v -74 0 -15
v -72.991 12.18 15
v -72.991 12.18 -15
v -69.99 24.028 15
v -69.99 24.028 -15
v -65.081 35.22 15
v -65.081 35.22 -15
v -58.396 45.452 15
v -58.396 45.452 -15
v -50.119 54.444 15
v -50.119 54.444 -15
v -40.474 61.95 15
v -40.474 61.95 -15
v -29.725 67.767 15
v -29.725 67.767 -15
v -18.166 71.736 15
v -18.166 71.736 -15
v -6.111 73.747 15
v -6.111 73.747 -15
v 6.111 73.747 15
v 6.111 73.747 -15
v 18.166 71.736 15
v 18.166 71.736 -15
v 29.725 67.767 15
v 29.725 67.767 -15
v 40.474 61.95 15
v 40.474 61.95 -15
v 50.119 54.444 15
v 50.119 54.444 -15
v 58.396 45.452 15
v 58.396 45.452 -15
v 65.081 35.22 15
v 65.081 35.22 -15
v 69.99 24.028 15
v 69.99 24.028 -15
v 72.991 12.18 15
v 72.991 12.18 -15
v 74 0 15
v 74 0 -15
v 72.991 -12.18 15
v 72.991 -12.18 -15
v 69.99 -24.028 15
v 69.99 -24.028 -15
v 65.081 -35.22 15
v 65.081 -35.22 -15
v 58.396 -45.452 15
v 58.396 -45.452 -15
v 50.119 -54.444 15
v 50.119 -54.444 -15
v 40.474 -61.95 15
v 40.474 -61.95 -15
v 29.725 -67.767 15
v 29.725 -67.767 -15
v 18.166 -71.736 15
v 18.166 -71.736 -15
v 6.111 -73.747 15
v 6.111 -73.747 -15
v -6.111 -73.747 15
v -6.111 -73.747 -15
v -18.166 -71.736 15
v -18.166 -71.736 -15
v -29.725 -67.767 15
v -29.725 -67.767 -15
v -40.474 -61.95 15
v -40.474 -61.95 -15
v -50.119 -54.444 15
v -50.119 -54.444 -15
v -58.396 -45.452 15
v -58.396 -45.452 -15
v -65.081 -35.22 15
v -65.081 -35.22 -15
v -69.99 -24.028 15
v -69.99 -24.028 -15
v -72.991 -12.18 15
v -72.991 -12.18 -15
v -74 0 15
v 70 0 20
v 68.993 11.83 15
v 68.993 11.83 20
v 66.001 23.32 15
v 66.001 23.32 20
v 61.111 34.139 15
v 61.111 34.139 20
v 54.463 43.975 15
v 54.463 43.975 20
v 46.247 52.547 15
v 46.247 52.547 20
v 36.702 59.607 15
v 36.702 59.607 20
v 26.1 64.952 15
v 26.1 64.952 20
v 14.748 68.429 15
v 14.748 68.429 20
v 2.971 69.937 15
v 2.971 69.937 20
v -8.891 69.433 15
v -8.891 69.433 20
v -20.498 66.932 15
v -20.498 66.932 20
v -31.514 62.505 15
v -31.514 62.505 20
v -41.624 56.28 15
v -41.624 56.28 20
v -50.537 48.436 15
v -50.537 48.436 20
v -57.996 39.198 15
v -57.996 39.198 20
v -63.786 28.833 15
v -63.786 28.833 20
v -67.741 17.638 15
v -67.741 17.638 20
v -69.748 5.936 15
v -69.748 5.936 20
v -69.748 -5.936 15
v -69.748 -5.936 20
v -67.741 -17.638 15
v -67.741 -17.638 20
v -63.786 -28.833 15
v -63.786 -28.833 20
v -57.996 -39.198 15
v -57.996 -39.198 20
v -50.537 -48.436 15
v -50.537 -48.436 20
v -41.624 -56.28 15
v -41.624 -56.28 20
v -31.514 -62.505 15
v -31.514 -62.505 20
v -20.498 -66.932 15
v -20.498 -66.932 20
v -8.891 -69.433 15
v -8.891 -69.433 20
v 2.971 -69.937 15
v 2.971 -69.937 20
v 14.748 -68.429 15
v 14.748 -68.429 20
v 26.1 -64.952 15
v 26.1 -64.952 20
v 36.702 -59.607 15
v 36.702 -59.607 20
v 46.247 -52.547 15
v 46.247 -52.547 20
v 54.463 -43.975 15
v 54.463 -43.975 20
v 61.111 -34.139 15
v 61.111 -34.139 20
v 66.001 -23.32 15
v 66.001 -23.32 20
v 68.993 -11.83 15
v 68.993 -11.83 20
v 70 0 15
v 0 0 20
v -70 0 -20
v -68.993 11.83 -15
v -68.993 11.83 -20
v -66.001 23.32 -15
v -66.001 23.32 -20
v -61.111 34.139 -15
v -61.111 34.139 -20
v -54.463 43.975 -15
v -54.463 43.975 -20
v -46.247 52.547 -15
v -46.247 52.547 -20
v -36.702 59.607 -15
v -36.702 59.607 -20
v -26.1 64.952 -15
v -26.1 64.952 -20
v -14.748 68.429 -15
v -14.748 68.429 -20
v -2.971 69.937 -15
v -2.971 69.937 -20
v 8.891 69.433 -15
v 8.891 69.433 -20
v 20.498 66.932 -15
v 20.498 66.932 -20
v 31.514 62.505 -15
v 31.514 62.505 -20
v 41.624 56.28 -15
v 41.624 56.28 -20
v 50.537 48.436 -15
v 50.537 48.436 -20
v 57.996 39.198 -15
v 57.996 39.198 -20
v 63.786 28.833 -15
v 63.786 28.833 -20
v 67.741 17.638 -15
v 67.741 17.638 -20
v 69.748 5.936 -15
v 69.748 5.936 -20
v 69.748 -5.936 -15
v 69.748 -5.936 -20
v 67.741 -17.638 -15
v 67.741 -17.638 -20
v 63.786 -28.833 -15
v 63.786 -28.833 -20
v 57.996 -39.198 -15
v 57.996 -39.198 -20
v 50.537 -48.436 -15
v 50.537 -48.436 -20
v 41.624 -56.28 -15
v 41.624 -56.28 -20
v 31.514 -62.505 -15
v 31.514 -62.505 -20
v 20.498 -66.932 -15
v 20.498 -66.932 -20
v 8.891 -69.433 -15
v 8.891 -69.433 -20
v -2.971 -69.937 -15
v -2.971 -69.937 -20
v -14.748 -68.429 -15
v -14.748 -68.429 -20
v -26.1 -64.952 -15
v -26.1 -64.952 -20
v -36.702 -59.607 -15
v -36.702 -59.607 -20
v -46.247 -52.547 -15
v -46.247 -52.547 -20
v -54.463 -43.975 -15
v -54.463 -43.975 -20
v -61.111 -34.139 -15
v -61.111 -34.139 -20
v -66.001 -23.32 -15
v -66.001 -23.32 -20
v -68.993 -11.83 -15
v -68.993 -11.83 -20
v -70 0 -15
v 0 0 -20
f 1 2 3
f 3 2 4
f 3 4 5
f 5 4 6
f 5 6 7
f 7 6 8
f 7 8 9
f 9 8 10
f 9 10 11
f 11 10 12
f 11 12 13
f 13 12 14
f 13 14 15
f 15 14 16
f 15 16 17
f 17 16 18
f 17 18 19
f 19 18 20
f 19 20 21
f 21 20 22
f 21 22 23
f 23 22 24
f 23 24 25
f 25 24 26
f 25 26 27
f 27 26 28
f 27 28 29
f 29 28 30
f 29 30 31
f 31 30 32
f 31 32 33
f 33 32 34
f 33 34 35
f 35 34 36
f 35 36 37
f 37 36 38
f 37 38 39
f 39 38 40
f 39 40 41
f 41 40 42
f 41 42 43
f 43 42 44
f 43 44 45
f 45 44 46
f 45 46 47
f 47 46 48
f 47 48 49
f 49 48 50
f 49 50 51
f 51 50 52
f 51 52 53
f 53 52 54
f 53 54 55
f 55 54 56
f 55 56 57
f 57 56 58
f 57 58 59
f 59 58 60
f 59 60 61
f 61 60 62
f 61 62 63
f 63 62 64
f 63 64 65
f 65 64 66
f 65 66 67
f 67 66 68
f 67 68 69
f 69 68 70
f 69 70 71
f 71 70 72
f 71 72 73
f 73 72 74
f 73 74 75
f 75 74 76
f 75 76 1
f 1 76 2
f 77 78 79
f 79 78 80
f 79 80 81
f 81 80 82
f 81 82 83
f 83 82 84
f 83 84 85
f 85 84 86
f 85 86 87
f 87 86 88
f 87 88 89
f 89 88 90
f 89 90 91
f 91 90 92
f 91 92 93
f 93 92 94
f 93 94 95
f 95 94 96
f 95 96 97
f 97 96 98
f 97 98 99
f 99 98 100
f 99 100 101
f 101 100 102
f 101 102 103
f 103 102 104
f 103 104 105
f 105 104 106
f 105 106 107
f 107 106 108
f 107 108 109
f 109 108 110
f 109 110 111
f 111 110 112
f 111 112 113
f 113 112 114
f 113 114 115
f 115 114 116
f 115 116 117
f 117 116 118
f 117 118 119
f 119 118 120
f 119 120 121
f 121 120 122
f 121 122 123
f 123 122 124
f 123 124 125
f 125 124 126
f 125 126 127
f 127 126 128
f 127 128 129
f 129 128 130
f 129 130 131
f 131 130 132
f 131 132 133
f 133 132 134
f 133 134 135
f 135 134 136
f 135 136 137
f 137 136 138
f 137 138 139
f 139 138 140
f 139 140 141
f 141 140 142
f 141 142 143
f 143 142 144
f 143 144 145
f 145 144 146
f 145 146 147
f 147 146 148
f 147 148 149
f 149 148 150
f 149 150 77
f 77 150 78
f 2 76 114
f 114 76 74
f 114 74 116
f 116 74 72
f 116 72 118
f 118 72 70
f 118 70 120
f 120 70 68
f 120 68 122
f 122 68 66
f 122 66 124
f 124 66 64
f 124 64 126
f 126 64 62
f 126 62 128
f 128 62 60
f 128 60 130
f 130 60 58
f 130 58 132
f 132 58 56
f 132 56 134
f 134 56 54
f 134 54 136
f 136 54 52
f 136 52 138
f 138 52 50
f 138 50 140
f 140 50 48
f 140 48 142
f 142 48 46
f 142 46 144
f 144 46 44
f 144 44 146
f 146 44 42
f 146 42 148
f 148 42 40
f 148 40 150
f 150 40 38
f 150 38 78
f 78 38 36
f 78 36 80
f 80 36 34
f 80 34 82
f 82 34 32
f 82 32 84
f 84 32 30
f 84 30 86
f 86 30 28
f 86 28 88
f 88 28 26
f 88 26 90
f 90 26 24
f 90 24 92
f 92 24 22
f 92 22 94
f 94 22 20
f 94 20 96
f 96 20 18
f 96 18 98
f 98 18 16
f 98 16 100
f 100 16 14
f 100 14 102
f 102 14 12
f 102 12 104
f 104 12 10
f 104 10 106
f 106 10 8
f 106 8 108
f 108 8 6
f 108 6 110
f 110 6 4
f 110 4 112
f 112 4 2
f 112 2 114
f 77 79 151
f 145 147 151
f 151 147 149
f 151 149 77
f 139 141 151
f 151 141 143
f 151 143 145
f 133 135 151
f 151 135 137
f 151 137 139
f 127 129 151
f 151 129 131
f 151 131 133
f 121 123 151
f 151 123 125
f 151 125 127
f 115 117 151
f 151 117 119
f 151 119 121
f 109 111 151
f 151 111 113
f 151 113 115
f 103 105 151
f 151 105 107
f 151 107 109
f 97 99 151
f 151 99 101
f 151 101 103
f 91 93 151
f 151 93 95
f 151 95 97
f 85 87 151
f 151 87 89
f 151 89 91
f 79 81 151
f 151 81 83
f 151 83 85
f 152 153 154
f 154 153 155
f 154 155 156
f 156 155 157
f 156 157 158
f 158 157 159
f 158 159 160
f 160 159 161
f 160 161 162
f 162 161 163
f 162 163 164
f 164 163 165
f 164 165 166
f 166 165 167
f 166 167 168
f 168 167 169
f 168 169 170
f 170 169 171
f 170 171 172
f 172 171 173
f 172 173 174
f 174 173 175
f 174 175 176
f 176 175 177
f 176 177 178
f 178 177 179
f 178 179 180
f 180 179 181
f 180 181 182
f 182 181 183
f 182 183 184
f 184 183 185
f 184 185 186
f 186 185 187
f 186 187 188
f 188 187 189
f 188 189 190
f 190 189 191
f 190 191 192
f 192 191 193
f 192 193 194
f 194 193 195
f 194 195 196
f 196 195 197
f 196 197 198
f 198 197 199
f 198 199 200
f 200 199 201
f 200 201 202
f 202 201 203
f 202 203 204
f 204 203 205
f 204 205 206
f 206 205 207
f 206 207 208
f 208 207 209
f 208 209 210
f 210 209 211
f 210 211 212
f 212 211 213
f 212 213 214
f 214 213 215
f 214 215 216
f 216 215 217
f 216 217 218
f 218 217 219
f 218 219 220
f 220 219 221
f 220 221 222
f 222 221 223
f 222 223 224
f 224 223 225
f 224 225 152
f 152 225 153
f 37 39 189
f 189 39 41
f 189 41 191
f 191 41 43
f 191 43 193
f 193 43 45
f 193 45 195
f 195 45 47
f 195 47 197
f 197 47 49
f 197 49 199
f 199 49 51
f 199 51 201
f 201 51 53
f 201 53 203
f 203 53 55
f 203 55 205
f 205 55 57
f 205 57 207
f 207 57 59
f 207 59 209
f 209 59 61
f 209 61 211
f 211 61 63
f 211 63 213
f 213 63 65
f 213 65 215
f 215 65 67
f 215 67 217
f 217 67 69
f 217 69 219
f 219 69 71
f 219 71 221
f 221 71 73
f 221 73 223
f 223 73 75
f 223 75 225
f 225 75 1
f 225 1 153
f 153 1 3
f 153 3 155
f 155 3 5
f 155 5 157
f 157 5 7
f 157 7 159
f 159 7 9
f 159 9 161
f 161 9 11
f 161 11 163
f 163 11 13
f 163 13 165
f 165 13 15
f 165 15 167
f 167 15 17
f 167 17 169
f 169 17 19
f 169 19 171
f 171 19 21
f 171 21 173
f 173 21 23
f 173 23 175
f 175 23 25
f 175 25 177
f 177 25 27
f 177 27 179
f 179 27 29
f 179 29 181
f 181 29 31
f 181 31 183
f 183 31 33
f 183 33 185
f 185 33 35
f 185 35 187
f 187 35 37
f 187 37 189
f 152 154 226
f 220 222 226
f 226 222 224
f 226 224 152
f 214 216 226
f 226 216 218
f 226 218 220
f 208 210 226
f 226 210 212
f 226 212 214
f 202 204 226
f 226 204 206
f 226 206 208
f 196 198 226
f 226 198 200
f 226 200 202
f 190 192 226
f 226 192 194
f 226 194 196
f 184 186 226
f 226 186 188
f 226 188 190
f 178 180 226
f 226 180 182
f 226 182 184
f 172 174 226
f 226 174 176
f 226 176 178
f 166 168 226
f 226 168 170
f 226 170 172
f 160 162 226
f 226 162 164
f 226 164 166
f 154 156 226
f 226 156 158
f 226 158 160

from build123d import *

# Parameters (mm, degrees)
SKETCH1_R           = 74
BOSS_EXTRUDE1_DEPTH = 20
SKETCH2_R           = 74
SKETCH2_R_2         = 70
CUT_EXTRUDE1_DEPTH  = 5
CUT_EXTRUDE2_START  = -5
SKETCH3_R           = 74
SKETCH3_R_2         = 70
CUT_EXTRUDE2_DEPTH  = 5


with BuildPart() as part:
    # Sketch1 → Boss-Extrude1 (new, symmetric)
    with BuildSketch(Plane.XY):
        Circle(SKETCH1_R)
    extrude(amount=BOSS_EXTRUDE1_DEPTH, both=True)

    # Sketch2 → Cut-Extrude1 (cut)
    with BuildSketch(Plane.XY.offset(20)):
        Circle(SKETCH2_R)
        Circle(SKETCH2_R_2, mode=Mode.SUBTRACT)
    extrude(amount=-CUT_EXTRUDE1_DEPTH, mode=Mode.SUBTRACT)

    # Sketch3 → Cut-Extrude2 (cut)
    with BuildSketch(Plane(origin=(0, 0, -20), x_dir=(-1, 0, 0), z_dir=(0, 0, -1)).offset(CUT_EXTRUDE2_START)):
        Circle(SKETCH3_R)
        with Locations(Location((0, 0, 0), (0, 0, 180))):
            Circle(SKETCH3_R_2, mode=Mode.SUBTRACT)
    extrude(amount=CUT_EXTRUDE2_DEPTH, mode=Mode.SUBTRACT)


solid = part.part
